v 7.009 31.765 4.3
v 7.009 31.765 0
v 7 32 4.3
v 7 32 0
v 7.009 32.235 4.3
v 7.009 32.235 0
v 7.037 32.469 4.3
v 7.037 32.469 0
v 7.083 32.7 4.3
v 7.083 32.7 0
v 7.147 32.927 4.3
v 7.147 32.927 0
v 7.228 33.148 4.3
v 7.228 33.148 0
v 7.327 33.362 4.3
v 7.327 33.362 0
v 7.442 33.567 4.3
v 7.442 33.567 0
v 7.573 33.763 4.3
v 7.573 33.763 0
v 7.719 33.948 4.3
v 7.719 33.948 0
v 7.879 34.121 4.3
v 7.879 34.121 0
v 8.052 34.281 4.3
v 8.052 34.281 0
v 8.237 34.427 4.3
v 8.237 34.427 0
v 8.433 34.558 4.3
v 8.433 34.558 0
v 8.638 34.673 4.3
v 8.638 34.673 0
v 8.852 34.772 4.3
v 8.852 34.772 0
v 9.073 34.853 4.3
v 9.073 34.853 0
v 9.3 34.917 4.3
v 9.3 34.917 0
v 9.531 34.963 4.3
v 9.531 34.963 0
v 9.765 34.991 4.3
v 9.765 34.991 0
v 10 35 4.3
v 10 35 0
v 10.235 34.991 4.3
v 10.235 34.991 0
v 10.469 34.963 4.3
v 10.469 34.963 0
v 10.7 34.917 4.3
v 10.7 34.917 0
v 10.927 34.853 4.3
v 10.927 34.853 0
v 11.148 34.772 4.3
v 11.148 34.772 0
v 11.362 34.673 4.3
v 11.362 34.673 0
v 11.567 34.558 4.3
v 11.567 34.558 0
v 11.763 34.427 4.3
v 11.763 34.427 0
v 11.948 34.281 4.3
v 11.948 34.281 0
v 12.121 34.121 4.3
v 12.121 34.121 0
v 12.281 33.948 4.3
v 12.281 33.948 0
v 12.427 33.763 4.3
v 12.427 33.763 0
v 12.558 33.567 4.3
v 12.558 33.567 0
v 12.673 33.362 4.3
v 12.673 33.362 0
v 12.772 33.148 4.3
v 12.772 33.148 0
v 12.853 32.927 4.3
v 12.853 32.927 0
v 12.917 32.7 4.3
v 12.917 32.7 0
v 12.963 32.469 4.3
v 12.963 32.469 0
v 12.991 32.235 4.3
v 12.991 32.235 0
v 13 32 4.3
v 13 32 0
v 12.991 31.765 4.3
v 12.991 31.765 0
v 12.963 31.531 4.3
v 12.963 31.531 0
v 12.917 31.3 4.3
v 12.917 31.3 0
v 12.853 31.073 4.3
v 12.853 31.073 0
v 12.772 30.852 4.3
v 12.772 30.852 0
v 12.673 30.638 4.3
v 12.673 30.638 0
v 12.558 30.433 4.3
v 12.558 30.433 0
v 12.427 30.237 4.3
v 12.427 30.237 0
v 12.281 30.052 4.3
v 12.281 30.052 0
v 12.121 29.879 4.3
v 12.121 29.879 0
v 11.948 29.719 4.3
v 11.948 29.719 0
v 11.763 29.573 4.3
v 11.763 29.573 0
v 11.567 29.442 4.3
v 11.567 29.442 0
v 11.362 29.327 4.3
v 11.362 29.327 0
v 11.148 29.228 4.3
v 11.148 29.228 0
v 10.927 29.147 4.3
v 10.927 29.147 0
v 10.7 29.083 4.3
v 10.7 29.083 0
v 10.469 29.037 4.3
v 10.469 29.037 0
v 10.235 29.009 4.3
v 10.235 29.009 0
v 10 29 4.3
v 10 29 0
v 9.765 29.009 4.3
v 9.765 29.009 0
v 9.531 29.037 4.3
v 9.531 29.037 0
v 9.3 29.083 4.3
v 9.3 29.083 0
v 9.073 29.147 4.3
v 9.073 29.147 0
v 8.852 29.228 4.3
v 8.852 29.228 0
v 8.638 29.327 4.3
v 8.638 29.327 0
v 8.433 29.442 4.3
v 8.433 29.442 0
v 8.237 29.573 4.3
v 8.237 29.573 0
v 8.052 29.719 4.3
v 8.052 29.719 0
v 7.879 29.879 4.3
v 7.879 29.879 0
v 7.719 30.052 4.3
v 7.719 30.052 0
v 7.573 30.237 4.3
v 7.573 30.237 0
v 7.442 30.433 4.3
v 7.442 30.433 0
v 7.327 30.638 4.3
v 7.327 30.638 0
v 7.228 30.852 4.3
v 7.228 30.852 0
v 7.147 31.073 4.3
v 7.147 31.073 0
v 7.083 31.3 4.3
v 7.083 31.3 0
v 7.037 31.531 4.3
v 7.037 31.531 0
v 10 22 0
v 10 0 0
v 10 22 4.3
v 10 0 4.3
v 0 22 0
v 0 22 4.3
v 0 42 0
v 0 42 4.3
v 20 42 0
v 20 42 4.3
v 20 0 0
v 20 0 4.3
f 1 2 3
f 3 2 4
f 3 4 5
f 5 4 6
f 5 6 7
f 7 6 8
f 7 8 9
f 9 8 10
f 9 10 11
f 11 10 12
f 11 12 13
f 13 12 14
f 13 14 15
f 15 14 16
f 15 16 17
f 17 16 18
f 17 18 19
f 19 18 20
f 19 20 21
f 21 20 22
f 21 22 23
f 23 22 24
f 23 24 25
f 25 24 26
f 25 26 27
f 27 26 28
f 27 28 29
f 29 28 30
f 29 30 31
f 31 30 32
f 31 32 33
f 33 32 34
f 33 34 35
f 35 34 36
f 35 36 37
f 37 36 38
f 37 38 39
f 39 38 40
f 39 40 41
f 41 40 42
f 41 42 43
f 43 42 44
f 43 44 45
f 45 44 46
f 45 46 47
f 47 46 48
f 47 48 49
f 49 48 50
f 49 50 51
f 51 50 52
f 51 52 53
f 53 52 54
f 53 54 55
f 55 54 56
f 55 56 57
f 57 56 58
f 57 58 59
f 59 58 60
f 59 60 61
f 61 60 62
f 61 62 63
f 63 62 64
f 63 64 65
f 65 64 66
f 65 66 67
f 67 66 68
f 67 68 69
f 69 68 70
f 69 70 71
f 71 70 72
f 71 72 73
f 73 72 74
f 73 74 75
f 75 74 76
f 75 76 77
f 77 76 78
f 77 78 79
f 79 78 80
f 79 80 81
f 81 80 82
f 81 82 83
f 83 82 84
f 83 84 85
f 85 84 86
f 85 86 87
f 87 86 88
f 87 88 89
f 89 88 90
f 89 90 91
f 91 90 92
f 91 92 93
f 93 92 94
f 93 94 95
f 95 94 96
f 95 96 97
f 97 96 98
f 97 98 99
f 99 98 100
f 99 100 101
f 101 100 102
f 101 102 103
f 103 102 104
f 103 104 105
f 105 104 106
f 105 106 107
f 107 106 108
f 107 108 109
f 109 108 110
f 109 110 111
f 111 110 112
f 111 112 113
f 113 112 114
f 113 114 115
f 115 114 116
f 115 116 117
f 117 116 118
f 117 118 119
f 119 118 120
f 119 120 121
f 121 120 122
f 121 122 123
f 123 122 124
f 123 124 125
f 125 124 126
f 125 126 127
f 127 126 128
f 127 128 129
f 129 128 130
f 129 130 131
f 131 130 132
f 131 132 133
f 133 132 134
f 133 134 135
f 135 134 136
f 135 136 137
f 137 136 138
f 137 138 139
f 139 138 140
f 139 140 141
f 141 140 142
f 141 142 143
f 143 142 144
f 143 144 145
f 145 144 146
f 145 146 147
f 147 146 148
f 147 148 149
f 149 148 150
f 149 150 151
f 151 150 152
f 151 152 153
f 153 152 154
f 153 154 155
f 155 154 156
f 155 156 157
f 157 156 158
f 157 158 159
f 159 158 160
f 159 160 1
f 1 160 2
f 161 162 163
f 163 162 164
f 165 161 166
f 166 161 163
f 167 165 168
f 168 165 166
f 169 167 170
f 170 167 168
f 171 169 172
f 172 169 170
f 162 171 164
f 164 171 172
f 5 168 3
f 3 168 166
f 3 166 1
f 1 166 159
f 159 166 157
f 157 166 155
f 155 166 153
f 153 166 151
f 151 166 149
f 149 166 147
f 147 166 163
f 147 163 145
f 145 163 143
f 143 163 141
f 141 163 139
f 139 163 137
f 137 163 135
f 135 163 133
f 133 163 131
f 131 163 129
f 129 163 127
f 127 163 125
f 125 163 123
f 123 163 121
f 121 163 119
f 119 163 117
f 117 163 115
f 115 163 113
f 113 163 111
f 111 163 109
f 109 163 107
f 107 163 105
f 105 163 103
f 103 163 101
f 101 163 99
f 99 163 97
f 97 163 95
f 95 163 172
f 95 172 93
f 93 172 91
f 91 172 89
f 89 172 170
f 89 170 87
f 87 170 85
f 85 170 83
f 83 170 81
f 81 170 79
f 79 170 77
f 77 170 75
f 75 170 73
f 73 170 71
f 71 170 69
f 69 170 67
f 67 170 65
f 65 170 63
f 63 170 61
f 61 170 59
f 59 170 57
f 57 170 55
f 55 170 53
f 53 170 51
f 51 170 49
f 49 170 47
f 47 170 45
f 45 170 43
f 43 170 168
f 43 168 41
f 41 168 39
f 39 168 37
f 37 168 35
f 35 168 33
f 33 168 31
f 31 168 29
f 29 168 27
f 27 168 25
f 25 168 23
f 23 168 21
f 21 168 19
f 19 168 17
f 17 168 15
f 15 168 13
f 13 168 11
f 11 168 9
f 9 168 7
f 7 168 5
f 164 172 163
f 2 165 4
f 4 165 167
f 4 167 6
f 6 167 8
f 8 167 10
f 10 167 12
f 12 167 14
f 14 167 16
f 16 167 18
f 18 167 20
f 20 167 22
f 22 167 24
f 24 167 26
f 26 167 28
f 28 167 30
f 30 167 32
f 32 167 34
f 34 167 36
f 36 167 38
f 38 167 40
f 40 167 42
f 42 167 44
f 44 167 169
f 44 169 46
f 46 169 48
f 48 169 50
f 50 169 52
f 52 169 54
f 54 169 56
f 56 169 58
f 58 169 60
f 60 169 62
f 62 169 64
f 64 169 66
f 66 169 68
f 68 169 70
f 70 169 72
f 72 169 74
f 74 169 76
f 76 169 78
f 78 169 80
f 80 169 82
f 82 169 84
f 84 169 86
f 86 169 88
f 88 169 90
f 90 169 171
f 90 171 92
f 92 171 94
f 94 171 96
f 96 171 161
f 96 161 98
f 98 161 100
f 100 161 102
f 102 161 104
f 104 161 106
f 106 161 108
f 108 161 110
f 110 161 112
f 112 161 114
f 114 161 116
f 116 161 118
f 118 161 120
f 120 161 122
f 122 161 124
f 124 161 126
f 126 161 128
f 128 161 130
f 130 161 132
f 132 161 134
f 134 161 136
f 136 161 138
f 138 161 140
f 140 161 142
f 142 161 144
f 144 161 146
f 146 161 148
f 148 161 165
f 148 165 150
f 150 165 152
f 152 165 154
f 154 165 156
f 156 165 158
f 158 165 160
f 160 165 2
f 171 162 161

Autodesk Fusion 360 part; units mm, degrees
sketch "Sketch1" plane through (0, 0, 0) normal (0, 0, 1) x (1, 0, 0) in component "pretensioner"
  line L0 (10, 0) -> (20, 0)
  line L1 (20, 0) -> (20, 42)
  line L2 (20, 42) -> (0, 42)
  line L3 (0, 42) -> (0, 22)
  line L4 (0, 42) -> (20, 42) construction
  line L5 (20, 42) -> (20, 22) construction
  line L6 (20, 22) -> (0, 22) construction
  line L7 (0, 22) -> (0, 42) construction
  circle A0 centre (10, 32) radius 3
  line L8 (10, 22) -> (10, 0)
  line L9 (10, 0) -> (20, 0)
  line L10 (20, 0) -> (20, 22)
  line L11 (10, 22) -> (0, 22)
  dimension "d1" = 20
  dimension "d2" = 42
  dimension "d3" = 20
  dimension "d4" = 6
  dimension "d5" = 10
extrude "Extrude1" add sketch "Sketch1" along normal blind 4.3 in component "pretensioner"
component "pretensioner" placed x (1, 0, 0) y (0, 1, 0) z (0, 0, 1) at (0, 0, 0)
